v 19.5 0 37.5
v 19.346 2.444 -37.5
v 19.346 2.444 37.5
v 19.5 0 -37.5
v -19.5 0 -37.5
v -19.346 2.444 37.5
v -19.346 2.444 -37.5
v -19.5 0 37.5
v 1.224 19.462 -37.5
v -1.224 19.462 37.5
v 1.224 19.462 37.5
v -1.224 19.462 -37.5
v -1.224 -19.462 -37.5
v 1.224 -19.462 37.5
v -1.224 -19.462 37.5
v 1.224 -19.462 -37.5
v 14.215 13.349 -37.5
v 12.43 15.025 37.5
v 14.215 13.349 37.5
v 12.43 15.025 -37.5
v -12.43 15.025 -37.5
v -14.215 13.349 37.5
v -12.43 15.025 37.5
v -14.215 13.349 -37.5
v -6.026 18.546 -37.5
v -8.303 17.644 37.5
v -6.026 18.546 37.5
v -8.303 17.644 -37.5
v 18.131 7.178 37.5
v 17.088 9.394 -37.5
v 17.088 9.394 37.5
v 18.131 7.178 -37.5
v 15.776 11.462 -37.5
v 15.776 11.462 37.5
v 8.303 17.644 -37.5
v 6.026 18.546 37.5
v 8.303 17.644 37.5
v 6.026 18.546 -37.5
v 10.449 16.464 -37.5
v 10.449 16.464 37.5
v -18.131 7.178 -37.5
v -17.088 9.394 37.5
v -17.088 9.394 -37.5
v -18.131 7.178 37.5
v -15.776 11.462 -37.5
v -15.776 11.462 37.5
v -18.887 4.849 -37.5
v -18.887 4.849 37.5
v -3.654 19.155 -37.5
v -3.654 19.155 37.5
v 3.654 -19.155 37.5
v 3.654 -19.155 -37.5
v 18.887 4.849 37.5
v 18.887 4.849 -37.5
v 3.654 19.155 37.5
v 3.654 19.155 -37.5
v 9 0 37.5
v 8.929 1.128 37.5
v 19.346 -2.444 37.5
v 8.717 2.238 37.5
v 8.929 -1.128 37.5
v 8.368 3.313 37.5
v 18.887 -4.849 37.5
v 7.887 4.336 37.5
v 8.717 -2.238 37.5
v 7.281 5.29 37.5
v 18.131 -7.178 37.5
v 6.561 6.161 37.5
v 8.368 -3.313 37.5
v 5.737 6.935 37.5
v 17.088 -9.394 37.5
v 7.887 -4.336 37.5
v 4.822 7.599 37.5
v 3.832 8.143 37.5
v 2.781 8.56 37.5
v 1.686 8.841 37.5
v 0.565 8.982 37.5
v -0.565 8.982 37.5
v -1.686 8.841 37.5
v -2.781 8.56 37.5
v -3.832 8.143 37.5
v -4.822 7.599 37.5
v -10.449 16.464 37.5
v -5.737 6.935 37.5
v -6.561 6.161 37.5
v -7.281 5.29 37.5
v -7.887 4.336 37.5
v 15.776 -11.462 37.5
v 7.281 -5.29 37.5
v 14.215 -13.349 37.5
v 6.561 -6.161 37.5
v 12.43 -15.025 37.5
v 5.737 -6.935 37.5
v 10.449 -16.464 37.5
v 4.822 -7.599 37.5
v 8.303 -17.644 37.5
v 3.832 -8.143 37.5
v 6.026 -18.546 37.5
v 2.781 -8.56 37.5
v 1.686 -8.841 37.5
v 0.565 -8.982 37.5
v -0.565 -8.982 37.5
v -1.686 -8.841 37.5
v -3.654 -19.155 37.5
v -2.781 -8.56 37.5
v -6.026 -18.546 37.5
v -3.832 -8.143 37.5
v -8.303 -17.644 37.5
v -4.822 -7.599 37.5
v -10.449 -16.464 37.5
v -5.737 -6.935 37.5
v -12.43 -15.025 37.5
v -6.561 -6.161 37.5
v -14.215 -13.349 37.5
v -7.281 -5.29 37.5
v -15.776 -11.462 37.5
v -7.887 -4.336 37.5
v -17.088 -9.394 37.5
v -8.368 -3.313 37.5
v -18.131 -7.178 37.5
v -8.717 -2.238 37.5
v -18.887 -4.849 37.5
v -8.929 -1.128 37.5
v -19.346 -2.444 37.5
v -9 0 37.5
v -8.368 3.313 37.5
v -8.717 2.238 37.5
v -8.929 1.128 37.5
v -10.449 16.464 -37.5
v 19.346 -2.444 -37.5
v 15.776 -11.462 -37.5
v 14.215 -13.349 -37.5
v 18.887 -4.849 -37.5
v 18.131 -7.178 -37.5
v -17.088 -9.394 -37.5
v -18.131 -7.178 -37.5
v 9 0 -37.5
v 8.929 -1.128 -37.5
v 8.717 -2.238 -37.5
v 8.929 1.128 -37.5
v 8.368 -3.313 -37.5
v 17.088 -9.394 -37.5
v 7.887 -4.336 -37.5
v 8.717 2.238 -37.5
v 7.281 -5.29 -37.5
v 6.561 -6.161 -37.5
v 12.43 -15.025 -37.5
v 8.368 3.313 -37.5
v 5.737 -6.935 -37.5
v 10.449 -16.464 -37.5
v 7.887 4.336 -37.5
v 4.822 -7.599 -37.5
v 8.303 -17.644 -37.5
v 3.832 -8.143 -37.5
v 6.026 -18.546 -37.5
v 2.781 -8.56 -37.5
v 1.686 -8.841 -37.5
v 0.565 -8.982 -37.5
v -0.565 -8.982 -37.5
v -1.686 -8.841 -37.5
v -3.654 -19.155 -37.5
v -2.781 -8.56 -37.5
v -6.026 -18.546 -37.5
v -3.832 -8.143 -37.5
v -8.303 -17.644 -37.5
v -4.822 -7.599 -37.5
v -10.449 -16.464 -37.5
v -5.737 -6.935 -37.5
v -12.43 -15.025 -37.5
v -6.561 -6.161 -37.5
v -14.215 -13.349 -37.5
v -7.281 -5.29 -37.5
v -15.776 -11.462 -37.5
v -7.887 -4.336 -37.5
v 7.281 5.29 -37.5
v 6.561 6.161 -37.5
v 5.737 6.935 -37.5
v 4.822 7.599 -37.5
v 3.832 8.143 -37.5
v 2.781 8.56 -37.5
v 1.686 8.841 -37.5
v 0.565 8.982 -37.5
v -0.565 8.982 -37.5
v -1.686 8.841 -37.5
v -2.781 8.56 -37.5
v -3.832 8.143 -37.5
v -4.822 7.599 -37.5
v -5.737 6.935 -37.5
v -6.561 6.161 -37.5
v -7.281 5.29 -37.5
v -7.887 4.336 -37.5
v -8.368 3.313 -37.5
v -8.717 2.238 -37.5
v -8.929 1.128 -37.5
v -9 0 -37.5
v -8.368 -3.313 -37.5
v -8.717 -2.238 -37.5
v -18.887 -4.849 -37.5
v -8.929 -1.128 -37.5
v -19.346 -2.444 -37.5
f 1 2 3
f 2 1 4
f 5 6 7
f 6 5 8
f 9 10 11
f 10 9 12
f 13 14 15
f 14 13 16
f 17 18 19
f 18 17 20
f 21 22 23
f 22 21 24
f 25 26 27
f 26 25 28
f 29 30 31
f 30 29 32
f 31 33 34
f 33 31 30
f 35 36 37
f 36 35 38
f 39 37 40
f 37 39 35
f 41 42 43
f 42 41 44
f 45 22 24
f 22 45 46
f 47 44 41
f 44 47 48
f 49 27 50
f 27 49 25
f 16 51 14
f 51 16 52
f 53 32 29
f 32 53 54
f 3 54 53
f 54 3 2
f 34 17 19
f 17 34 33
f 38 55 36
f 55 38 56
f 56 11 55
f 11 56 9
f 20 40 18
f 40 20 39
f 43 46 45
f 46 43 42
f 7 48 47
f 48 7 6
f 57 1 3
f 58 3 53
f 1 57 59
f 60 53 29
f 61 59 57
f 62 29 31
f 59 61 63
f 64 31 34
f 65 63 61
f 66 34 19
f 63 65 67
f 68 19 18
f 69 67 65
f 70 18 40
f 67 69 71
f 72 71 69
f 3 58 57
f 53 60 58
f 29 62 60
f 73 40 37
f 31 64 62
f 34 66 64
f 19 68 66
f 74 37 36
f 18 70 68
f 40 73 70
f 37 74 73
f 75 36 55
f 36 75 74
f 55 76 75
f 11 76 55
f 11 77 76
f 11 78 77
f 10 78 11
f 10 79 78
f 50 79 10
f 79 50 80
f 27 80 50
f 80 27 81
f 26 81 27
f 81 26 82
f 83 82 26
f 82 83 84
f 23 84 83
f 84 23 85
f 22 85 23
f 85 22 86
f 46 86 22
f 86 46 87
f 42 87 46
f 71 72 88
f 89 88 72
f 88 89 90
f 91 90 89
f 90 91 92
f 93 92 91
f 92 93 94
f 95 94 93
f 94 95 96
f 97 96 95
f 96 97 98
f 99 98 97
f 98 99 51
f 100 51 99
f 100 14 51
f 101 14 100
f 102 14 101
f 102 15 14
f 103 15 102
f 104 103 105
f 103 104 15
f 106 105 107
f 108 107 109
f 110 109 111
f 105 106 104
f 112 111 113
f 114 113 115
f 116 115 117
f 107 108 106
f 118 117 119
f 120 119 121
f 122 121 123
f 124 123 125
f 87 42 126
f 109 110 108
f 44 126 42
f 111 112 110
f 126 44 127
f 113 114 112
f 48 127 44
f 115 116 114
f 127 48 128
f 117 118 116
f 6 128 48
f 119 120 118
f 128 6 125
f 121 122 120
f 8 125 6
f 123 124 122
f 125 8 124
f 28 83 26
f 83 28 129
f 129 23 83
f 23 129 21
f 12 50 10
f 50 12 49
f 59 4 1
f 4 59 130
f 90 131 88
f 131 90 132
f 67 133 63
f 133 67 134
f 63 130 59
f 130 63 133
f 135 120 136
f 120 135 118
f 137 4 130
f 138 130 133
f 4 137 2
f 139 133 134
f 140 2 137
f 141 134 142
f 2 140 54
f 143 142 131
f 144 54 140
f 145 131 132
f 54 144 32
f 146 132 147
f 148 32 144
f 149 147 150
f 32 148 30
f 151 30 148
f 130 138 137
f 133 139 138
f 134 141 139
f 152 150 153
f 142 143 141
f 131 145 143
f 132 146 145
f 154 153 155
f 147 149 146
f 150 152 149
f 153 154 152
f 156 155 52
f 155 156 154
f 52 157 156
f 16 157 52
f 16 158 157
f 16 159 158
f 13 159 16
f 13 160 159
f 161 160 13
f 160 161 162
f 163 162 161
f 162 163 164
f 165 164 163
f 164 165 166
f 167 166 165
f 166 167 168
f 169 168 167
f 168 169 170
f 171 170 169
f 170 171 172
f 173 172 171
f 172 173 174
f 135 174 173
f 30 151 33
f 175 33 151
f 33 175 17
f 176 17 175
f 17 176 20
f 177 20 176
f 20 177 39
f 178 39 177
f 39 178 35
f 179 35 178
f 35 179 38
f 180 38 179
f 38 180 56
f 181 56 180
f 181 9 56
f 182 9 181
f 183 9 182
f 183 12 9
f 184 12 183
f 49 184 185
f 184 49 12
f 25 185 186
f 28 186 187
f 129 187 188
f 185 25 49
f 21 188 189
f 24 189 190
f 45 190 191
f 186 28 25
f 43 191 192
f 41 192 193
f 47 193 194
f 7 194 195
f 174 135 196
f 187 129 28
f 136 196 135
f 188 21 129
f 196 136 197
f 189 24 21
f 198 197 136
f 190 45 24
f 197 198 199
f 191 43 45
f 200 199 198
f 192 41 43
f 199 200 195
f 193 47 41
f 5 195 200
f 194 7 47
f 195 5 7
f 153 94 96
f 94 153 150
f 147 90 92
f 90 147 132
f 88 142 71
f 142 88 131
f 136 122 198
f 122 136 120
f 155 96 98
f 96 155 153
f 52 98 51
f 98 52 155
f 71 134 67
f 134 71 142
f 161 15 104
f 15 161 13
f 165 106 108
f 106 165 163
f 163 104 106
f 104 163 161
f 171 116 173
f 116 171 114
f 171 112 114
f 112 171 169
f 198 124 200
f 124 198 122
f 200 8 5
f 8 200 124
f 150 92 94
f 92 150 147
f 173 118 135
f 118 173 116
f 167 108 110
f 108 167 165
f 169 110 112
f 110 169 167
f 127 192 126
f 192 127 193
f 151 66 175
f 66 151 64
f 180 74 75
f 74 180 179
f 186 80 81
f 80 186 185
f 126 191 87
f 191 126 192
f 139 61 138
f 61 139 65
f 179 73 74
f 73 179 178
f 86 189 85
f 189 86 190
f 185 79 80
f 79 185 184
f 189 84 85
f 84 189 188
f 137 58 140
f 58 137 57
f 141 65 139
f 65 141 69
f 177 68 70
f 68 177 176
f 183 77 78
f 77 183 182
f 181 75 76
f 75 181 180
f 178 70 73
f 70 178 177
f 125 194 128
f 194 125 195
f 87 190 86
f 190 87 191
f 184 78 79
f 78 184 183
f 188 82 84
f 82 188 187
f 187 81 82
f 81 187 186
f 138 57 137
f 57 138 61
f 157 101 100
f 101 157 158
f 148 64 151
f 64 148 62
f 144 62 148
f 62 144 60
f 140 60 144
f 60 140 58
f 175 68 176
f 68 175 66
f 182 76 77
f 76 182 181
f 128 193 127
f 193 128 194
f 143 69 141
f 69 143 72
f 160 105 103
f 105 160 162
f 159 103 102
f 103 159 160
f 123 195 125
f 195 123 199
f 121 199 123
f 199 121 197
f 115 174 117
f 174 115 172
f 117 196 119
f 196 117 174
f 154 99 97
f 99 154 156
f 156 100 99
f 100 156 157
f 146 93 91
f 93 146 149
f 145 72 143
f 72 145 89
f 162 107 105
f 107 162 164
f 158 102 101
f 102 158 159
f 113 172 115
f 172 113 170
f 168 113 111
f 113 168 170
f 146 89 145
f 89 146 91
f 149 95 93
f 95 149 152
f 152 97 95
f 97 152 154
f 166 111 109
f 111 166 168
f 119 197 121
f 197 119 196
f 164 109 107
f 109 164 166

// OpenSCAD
$fn = 50;


difference() {
	union() {
		translate(v = [0, 0, -37.5000000000]) {
			cylinder(h = 75, r = 19.5000000000);
		}
	}
	union() {
		translate(v = [0, 0, -100.0000000000]) {
			cylinder(h = 200, r = 9);
		}
	}
}
